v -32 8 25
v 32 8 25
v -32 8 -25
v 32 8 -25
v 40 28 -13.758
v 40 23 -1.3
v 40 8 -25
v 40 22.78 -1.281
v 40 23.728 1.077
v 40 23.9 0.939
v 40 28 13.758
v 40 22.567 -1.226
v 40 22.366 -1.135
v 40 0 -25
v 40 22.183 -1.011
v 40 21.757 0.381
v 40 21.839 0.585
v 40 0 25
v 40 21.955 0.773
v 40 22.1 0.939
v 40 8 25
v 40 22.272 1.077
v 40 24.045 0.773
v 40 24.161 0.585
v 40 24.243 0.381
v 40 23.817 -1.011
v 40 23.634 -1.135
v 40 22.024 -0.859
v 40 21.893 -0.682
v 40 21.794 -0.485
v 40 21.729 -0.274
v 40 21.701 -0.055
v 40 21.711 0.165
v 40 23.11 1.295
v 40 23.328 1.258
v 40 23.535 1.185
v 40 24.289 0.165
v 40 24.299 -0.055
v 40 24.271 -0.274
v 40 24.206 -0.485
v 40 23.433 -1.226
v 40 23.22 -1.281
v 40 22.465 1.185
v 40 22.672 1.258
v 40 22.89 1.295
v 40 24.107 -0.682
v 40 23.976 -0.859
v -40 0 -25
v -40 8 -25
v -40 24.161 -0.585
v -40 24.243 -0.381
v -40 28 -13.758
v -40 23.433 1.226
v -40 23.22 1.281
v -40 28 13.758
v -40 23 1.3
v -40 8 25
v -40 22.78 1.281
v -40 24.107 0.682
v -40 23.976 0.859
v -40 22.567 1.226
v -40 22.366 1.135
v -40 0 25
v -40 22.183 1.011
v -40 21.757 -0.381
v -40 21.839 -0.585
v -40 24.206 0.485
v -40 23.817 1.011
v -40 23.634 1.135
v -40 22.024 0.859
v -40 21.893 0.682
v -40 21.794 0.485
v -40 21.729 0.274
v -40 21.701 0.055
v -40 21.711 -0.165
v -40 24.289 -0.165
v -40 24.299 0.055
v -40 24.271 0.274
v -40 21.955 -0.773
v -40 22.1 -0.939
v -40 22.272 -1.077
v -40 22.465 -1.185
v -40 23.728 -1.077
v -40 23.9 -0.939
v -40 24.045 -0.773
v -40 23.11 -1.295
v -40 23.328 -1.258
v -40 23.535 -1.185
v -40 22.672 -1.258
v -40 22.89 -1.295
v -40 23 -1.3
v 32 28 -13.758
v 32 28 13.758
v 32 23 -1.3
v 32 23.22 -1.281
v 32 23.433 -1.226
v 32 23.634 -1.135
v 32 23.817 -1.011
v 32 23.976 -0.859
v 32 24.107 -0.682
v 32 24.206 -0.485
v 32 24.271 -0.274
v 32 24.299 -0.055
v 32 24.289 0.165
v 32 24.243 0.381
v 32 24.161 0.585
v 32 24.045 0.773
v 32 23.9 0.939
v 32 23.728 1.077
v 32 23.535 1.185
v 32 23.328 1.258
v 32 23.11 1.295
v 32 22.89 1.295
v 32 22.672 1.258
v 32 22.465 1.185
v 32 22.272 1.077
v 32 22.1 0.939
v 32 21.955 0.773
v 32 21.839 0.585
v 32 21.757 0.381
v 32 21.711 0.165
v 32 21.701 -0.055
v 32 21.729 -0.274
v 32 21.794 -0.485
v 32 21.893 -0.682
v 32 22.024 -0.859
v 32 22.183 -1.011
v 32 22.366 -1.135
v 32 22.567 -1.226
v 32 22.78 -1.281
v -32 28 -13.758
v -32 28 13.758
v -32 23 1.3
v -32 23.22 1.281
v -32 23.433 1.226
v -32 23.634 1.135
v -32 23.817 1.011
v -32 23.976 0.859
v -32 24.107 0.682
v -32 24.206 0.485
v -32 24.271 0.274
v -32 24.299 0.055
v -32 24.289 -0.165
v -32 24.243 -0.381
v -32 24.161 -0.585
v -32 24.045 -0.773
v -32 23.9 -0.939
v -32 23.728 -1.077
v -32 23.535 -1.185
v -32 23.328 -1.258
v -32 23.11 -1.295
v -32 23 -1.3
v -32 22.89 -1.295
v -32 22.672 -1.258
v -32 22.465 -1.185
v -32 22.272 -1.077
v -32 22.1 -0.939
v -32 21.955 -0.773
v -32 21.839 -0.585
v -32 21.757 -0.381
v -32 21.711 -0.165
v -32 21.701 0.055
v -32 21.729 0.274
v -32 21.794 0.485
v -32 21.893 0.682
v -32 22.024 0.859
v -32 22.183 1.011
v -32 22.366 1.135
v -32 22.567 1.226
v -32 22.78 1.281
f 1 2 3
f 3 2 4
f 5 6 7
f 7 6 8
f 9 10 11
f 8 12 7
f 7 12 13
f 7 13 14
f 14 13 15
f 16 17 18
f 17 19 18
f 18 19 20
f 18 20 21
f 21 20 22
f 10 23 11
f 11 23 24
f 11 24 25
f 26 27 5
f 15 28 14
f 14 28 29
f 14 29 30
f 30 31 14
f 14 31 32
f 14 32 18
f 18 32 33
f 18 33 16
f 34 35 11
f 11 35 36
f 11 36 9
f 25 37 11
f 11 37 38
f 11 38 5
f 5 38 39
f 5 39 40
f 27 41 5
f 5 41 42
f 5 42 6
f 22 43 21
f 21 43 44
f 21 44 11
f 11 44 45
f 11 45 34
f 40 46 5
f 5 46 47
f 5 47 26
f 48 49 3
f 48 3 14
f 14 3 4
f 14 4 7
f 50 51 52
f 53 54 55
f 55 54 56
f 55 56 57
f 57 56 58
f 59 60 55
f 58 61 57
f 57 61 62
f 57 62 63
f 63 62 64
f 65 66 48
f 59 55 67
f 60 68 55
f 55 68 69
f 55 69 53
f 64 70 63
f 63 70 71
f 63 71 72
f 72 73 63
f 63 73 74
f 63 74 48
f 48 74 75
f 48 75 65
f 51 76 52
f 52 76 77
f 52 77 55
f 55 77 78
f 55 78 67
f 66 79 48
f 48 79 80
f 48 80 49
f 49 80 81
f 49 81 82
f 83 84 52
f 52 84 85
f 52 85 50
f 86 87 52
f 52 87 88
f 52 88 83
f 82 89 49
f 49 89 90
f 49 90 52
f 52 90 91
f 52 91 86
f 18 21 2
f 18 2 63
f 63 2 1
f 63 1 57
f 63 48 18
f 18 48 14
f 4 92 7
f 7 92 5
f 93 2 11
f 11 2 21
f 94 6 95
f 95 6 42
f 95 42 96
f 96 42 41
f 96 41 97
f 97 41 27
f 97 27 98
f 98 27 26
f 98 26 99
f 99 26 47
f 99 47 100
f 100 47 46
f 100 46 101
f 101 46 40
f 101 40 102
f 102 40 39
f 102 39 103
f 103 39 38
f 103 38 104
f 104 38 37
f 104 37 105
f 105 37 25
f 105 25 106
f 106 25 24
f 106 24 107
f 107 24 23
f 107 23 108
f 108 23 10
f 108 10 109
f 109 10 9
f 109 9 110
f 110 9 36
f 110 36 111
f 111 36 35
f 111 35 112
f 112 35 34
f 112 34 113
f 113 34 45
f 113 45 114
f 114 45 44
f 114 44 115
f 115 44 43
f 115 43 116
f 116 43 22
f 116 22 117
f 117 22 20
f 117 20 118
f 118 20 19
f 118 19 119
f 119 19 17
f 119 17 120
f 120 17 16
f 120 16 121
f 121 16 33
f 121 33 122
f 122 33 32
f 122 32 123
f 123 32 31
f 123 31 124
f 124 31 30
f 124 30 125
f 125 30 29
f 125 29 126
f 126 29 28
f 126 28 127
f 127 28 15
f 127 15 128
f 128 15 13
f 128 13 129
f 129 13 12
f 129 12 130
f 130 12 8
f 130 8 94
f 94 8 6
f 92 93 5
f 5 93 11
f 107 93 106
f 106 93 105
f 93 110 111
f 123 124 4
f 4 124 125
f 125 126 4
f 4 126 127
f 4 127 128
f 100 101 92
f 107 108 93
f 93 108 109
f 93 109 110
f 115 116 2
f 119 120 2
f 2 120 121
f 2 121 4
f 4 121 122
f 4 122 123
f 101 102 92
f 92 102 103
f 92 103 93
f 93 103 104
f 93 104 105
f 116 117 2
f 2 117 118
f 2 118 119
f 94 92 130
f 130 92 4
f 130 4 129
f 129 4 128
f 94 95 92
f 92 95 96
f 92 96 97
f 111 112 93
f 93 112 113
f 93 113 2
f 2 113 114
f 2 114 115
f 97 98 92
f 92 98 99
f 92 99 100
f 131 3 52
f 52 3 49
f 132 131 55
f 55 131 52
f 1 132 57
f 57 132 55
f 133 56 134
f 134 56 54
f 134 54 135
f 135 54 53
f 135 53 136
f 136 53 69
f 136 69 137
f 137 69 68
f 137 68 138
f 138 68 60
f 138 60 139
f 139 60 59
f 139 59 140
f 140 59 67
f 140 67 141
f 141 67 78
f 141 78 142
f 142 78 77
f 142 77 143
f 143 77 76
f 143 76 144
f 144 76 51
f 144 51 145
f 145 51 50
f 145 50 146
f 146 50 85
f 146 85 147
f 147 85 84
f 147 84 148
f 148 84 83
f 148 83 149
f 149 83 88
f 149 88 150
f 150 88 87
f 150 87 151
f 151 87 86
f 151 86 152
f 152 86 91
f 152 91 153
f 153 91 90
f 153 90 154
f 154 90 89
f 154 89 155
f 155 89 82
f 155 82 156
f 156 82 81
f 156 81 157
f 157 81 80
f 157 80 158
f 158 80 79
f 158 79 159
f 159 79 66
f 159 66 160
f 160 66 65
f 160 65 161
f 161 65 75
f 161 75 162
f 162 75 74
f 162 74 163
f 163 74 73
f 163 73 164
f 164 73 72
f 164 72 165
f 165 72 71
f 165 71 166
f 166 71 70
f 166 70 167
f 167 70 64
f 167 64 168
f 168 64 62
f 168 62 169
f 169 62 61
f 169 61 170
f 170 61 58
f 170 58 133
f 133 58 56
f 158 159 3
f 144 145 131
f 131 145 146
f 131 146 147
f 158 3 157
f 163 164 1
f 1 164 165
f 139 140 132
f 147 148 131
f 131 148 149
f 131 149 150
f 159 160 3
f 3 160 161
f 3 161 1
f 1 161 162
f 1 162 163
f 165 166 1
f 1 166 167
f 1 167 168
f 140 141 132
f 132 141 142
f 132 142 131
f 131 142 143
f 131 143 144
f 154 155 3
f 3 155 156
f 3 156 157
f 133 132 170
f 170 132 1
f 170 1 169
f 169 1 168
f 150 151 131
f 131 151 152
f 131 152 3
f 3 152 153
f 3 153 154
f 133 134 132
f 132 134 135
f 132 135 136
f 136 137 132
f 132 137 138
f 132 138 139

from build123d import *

# Parameters (mm, degrees)
SKETCH2_W           = 80
SKETCH2_H           = 50
BOSS_EXTRUDE1_DEPTH = 8
SKETCH3_R           = 1.3
BOSS_EXTRUDE2_DEPTH = 8


with BuildPart() as part:
    # Sketch2 → Boss-Extrude1 (new body)
    with BuildSketch(Plane(origin=(0, 0, 0), x_dir=(1, 0, 0), z_dir=(0, 1, 0))):
        Rectangle(SKETCH2_W, SKETCH2_H)
    extrude(amount=BOSS_EXTRUDE1_DEPTH)

    # Sketch3 → Boss-Extrude2 (add)
    with BuildSketch(Plane(origin=(40, 0, 0), x_dir=(0, 0, -1), z_dir=(1, 0, 0))):
        Polygon((13.758286246, 28), (25, 8), (-25, 8), (-13.758286246, 28), align=None)
        with Locations((0, 23)):
            Circle(SKETCH3_R, mode=Mode.SUBTRACT)
    boss_extrude2 = extrude(amount=-BOSS_EXTRUDE2_DEPTH)

    # Mirror1: Boss-Extrude2 across plane
    add(boss_extrude2.mirror(Plane(origin=(0, 0, 0), x_dir=(0, 0, 1), z_dir=(1, 0, 0))))


solid = part.part
